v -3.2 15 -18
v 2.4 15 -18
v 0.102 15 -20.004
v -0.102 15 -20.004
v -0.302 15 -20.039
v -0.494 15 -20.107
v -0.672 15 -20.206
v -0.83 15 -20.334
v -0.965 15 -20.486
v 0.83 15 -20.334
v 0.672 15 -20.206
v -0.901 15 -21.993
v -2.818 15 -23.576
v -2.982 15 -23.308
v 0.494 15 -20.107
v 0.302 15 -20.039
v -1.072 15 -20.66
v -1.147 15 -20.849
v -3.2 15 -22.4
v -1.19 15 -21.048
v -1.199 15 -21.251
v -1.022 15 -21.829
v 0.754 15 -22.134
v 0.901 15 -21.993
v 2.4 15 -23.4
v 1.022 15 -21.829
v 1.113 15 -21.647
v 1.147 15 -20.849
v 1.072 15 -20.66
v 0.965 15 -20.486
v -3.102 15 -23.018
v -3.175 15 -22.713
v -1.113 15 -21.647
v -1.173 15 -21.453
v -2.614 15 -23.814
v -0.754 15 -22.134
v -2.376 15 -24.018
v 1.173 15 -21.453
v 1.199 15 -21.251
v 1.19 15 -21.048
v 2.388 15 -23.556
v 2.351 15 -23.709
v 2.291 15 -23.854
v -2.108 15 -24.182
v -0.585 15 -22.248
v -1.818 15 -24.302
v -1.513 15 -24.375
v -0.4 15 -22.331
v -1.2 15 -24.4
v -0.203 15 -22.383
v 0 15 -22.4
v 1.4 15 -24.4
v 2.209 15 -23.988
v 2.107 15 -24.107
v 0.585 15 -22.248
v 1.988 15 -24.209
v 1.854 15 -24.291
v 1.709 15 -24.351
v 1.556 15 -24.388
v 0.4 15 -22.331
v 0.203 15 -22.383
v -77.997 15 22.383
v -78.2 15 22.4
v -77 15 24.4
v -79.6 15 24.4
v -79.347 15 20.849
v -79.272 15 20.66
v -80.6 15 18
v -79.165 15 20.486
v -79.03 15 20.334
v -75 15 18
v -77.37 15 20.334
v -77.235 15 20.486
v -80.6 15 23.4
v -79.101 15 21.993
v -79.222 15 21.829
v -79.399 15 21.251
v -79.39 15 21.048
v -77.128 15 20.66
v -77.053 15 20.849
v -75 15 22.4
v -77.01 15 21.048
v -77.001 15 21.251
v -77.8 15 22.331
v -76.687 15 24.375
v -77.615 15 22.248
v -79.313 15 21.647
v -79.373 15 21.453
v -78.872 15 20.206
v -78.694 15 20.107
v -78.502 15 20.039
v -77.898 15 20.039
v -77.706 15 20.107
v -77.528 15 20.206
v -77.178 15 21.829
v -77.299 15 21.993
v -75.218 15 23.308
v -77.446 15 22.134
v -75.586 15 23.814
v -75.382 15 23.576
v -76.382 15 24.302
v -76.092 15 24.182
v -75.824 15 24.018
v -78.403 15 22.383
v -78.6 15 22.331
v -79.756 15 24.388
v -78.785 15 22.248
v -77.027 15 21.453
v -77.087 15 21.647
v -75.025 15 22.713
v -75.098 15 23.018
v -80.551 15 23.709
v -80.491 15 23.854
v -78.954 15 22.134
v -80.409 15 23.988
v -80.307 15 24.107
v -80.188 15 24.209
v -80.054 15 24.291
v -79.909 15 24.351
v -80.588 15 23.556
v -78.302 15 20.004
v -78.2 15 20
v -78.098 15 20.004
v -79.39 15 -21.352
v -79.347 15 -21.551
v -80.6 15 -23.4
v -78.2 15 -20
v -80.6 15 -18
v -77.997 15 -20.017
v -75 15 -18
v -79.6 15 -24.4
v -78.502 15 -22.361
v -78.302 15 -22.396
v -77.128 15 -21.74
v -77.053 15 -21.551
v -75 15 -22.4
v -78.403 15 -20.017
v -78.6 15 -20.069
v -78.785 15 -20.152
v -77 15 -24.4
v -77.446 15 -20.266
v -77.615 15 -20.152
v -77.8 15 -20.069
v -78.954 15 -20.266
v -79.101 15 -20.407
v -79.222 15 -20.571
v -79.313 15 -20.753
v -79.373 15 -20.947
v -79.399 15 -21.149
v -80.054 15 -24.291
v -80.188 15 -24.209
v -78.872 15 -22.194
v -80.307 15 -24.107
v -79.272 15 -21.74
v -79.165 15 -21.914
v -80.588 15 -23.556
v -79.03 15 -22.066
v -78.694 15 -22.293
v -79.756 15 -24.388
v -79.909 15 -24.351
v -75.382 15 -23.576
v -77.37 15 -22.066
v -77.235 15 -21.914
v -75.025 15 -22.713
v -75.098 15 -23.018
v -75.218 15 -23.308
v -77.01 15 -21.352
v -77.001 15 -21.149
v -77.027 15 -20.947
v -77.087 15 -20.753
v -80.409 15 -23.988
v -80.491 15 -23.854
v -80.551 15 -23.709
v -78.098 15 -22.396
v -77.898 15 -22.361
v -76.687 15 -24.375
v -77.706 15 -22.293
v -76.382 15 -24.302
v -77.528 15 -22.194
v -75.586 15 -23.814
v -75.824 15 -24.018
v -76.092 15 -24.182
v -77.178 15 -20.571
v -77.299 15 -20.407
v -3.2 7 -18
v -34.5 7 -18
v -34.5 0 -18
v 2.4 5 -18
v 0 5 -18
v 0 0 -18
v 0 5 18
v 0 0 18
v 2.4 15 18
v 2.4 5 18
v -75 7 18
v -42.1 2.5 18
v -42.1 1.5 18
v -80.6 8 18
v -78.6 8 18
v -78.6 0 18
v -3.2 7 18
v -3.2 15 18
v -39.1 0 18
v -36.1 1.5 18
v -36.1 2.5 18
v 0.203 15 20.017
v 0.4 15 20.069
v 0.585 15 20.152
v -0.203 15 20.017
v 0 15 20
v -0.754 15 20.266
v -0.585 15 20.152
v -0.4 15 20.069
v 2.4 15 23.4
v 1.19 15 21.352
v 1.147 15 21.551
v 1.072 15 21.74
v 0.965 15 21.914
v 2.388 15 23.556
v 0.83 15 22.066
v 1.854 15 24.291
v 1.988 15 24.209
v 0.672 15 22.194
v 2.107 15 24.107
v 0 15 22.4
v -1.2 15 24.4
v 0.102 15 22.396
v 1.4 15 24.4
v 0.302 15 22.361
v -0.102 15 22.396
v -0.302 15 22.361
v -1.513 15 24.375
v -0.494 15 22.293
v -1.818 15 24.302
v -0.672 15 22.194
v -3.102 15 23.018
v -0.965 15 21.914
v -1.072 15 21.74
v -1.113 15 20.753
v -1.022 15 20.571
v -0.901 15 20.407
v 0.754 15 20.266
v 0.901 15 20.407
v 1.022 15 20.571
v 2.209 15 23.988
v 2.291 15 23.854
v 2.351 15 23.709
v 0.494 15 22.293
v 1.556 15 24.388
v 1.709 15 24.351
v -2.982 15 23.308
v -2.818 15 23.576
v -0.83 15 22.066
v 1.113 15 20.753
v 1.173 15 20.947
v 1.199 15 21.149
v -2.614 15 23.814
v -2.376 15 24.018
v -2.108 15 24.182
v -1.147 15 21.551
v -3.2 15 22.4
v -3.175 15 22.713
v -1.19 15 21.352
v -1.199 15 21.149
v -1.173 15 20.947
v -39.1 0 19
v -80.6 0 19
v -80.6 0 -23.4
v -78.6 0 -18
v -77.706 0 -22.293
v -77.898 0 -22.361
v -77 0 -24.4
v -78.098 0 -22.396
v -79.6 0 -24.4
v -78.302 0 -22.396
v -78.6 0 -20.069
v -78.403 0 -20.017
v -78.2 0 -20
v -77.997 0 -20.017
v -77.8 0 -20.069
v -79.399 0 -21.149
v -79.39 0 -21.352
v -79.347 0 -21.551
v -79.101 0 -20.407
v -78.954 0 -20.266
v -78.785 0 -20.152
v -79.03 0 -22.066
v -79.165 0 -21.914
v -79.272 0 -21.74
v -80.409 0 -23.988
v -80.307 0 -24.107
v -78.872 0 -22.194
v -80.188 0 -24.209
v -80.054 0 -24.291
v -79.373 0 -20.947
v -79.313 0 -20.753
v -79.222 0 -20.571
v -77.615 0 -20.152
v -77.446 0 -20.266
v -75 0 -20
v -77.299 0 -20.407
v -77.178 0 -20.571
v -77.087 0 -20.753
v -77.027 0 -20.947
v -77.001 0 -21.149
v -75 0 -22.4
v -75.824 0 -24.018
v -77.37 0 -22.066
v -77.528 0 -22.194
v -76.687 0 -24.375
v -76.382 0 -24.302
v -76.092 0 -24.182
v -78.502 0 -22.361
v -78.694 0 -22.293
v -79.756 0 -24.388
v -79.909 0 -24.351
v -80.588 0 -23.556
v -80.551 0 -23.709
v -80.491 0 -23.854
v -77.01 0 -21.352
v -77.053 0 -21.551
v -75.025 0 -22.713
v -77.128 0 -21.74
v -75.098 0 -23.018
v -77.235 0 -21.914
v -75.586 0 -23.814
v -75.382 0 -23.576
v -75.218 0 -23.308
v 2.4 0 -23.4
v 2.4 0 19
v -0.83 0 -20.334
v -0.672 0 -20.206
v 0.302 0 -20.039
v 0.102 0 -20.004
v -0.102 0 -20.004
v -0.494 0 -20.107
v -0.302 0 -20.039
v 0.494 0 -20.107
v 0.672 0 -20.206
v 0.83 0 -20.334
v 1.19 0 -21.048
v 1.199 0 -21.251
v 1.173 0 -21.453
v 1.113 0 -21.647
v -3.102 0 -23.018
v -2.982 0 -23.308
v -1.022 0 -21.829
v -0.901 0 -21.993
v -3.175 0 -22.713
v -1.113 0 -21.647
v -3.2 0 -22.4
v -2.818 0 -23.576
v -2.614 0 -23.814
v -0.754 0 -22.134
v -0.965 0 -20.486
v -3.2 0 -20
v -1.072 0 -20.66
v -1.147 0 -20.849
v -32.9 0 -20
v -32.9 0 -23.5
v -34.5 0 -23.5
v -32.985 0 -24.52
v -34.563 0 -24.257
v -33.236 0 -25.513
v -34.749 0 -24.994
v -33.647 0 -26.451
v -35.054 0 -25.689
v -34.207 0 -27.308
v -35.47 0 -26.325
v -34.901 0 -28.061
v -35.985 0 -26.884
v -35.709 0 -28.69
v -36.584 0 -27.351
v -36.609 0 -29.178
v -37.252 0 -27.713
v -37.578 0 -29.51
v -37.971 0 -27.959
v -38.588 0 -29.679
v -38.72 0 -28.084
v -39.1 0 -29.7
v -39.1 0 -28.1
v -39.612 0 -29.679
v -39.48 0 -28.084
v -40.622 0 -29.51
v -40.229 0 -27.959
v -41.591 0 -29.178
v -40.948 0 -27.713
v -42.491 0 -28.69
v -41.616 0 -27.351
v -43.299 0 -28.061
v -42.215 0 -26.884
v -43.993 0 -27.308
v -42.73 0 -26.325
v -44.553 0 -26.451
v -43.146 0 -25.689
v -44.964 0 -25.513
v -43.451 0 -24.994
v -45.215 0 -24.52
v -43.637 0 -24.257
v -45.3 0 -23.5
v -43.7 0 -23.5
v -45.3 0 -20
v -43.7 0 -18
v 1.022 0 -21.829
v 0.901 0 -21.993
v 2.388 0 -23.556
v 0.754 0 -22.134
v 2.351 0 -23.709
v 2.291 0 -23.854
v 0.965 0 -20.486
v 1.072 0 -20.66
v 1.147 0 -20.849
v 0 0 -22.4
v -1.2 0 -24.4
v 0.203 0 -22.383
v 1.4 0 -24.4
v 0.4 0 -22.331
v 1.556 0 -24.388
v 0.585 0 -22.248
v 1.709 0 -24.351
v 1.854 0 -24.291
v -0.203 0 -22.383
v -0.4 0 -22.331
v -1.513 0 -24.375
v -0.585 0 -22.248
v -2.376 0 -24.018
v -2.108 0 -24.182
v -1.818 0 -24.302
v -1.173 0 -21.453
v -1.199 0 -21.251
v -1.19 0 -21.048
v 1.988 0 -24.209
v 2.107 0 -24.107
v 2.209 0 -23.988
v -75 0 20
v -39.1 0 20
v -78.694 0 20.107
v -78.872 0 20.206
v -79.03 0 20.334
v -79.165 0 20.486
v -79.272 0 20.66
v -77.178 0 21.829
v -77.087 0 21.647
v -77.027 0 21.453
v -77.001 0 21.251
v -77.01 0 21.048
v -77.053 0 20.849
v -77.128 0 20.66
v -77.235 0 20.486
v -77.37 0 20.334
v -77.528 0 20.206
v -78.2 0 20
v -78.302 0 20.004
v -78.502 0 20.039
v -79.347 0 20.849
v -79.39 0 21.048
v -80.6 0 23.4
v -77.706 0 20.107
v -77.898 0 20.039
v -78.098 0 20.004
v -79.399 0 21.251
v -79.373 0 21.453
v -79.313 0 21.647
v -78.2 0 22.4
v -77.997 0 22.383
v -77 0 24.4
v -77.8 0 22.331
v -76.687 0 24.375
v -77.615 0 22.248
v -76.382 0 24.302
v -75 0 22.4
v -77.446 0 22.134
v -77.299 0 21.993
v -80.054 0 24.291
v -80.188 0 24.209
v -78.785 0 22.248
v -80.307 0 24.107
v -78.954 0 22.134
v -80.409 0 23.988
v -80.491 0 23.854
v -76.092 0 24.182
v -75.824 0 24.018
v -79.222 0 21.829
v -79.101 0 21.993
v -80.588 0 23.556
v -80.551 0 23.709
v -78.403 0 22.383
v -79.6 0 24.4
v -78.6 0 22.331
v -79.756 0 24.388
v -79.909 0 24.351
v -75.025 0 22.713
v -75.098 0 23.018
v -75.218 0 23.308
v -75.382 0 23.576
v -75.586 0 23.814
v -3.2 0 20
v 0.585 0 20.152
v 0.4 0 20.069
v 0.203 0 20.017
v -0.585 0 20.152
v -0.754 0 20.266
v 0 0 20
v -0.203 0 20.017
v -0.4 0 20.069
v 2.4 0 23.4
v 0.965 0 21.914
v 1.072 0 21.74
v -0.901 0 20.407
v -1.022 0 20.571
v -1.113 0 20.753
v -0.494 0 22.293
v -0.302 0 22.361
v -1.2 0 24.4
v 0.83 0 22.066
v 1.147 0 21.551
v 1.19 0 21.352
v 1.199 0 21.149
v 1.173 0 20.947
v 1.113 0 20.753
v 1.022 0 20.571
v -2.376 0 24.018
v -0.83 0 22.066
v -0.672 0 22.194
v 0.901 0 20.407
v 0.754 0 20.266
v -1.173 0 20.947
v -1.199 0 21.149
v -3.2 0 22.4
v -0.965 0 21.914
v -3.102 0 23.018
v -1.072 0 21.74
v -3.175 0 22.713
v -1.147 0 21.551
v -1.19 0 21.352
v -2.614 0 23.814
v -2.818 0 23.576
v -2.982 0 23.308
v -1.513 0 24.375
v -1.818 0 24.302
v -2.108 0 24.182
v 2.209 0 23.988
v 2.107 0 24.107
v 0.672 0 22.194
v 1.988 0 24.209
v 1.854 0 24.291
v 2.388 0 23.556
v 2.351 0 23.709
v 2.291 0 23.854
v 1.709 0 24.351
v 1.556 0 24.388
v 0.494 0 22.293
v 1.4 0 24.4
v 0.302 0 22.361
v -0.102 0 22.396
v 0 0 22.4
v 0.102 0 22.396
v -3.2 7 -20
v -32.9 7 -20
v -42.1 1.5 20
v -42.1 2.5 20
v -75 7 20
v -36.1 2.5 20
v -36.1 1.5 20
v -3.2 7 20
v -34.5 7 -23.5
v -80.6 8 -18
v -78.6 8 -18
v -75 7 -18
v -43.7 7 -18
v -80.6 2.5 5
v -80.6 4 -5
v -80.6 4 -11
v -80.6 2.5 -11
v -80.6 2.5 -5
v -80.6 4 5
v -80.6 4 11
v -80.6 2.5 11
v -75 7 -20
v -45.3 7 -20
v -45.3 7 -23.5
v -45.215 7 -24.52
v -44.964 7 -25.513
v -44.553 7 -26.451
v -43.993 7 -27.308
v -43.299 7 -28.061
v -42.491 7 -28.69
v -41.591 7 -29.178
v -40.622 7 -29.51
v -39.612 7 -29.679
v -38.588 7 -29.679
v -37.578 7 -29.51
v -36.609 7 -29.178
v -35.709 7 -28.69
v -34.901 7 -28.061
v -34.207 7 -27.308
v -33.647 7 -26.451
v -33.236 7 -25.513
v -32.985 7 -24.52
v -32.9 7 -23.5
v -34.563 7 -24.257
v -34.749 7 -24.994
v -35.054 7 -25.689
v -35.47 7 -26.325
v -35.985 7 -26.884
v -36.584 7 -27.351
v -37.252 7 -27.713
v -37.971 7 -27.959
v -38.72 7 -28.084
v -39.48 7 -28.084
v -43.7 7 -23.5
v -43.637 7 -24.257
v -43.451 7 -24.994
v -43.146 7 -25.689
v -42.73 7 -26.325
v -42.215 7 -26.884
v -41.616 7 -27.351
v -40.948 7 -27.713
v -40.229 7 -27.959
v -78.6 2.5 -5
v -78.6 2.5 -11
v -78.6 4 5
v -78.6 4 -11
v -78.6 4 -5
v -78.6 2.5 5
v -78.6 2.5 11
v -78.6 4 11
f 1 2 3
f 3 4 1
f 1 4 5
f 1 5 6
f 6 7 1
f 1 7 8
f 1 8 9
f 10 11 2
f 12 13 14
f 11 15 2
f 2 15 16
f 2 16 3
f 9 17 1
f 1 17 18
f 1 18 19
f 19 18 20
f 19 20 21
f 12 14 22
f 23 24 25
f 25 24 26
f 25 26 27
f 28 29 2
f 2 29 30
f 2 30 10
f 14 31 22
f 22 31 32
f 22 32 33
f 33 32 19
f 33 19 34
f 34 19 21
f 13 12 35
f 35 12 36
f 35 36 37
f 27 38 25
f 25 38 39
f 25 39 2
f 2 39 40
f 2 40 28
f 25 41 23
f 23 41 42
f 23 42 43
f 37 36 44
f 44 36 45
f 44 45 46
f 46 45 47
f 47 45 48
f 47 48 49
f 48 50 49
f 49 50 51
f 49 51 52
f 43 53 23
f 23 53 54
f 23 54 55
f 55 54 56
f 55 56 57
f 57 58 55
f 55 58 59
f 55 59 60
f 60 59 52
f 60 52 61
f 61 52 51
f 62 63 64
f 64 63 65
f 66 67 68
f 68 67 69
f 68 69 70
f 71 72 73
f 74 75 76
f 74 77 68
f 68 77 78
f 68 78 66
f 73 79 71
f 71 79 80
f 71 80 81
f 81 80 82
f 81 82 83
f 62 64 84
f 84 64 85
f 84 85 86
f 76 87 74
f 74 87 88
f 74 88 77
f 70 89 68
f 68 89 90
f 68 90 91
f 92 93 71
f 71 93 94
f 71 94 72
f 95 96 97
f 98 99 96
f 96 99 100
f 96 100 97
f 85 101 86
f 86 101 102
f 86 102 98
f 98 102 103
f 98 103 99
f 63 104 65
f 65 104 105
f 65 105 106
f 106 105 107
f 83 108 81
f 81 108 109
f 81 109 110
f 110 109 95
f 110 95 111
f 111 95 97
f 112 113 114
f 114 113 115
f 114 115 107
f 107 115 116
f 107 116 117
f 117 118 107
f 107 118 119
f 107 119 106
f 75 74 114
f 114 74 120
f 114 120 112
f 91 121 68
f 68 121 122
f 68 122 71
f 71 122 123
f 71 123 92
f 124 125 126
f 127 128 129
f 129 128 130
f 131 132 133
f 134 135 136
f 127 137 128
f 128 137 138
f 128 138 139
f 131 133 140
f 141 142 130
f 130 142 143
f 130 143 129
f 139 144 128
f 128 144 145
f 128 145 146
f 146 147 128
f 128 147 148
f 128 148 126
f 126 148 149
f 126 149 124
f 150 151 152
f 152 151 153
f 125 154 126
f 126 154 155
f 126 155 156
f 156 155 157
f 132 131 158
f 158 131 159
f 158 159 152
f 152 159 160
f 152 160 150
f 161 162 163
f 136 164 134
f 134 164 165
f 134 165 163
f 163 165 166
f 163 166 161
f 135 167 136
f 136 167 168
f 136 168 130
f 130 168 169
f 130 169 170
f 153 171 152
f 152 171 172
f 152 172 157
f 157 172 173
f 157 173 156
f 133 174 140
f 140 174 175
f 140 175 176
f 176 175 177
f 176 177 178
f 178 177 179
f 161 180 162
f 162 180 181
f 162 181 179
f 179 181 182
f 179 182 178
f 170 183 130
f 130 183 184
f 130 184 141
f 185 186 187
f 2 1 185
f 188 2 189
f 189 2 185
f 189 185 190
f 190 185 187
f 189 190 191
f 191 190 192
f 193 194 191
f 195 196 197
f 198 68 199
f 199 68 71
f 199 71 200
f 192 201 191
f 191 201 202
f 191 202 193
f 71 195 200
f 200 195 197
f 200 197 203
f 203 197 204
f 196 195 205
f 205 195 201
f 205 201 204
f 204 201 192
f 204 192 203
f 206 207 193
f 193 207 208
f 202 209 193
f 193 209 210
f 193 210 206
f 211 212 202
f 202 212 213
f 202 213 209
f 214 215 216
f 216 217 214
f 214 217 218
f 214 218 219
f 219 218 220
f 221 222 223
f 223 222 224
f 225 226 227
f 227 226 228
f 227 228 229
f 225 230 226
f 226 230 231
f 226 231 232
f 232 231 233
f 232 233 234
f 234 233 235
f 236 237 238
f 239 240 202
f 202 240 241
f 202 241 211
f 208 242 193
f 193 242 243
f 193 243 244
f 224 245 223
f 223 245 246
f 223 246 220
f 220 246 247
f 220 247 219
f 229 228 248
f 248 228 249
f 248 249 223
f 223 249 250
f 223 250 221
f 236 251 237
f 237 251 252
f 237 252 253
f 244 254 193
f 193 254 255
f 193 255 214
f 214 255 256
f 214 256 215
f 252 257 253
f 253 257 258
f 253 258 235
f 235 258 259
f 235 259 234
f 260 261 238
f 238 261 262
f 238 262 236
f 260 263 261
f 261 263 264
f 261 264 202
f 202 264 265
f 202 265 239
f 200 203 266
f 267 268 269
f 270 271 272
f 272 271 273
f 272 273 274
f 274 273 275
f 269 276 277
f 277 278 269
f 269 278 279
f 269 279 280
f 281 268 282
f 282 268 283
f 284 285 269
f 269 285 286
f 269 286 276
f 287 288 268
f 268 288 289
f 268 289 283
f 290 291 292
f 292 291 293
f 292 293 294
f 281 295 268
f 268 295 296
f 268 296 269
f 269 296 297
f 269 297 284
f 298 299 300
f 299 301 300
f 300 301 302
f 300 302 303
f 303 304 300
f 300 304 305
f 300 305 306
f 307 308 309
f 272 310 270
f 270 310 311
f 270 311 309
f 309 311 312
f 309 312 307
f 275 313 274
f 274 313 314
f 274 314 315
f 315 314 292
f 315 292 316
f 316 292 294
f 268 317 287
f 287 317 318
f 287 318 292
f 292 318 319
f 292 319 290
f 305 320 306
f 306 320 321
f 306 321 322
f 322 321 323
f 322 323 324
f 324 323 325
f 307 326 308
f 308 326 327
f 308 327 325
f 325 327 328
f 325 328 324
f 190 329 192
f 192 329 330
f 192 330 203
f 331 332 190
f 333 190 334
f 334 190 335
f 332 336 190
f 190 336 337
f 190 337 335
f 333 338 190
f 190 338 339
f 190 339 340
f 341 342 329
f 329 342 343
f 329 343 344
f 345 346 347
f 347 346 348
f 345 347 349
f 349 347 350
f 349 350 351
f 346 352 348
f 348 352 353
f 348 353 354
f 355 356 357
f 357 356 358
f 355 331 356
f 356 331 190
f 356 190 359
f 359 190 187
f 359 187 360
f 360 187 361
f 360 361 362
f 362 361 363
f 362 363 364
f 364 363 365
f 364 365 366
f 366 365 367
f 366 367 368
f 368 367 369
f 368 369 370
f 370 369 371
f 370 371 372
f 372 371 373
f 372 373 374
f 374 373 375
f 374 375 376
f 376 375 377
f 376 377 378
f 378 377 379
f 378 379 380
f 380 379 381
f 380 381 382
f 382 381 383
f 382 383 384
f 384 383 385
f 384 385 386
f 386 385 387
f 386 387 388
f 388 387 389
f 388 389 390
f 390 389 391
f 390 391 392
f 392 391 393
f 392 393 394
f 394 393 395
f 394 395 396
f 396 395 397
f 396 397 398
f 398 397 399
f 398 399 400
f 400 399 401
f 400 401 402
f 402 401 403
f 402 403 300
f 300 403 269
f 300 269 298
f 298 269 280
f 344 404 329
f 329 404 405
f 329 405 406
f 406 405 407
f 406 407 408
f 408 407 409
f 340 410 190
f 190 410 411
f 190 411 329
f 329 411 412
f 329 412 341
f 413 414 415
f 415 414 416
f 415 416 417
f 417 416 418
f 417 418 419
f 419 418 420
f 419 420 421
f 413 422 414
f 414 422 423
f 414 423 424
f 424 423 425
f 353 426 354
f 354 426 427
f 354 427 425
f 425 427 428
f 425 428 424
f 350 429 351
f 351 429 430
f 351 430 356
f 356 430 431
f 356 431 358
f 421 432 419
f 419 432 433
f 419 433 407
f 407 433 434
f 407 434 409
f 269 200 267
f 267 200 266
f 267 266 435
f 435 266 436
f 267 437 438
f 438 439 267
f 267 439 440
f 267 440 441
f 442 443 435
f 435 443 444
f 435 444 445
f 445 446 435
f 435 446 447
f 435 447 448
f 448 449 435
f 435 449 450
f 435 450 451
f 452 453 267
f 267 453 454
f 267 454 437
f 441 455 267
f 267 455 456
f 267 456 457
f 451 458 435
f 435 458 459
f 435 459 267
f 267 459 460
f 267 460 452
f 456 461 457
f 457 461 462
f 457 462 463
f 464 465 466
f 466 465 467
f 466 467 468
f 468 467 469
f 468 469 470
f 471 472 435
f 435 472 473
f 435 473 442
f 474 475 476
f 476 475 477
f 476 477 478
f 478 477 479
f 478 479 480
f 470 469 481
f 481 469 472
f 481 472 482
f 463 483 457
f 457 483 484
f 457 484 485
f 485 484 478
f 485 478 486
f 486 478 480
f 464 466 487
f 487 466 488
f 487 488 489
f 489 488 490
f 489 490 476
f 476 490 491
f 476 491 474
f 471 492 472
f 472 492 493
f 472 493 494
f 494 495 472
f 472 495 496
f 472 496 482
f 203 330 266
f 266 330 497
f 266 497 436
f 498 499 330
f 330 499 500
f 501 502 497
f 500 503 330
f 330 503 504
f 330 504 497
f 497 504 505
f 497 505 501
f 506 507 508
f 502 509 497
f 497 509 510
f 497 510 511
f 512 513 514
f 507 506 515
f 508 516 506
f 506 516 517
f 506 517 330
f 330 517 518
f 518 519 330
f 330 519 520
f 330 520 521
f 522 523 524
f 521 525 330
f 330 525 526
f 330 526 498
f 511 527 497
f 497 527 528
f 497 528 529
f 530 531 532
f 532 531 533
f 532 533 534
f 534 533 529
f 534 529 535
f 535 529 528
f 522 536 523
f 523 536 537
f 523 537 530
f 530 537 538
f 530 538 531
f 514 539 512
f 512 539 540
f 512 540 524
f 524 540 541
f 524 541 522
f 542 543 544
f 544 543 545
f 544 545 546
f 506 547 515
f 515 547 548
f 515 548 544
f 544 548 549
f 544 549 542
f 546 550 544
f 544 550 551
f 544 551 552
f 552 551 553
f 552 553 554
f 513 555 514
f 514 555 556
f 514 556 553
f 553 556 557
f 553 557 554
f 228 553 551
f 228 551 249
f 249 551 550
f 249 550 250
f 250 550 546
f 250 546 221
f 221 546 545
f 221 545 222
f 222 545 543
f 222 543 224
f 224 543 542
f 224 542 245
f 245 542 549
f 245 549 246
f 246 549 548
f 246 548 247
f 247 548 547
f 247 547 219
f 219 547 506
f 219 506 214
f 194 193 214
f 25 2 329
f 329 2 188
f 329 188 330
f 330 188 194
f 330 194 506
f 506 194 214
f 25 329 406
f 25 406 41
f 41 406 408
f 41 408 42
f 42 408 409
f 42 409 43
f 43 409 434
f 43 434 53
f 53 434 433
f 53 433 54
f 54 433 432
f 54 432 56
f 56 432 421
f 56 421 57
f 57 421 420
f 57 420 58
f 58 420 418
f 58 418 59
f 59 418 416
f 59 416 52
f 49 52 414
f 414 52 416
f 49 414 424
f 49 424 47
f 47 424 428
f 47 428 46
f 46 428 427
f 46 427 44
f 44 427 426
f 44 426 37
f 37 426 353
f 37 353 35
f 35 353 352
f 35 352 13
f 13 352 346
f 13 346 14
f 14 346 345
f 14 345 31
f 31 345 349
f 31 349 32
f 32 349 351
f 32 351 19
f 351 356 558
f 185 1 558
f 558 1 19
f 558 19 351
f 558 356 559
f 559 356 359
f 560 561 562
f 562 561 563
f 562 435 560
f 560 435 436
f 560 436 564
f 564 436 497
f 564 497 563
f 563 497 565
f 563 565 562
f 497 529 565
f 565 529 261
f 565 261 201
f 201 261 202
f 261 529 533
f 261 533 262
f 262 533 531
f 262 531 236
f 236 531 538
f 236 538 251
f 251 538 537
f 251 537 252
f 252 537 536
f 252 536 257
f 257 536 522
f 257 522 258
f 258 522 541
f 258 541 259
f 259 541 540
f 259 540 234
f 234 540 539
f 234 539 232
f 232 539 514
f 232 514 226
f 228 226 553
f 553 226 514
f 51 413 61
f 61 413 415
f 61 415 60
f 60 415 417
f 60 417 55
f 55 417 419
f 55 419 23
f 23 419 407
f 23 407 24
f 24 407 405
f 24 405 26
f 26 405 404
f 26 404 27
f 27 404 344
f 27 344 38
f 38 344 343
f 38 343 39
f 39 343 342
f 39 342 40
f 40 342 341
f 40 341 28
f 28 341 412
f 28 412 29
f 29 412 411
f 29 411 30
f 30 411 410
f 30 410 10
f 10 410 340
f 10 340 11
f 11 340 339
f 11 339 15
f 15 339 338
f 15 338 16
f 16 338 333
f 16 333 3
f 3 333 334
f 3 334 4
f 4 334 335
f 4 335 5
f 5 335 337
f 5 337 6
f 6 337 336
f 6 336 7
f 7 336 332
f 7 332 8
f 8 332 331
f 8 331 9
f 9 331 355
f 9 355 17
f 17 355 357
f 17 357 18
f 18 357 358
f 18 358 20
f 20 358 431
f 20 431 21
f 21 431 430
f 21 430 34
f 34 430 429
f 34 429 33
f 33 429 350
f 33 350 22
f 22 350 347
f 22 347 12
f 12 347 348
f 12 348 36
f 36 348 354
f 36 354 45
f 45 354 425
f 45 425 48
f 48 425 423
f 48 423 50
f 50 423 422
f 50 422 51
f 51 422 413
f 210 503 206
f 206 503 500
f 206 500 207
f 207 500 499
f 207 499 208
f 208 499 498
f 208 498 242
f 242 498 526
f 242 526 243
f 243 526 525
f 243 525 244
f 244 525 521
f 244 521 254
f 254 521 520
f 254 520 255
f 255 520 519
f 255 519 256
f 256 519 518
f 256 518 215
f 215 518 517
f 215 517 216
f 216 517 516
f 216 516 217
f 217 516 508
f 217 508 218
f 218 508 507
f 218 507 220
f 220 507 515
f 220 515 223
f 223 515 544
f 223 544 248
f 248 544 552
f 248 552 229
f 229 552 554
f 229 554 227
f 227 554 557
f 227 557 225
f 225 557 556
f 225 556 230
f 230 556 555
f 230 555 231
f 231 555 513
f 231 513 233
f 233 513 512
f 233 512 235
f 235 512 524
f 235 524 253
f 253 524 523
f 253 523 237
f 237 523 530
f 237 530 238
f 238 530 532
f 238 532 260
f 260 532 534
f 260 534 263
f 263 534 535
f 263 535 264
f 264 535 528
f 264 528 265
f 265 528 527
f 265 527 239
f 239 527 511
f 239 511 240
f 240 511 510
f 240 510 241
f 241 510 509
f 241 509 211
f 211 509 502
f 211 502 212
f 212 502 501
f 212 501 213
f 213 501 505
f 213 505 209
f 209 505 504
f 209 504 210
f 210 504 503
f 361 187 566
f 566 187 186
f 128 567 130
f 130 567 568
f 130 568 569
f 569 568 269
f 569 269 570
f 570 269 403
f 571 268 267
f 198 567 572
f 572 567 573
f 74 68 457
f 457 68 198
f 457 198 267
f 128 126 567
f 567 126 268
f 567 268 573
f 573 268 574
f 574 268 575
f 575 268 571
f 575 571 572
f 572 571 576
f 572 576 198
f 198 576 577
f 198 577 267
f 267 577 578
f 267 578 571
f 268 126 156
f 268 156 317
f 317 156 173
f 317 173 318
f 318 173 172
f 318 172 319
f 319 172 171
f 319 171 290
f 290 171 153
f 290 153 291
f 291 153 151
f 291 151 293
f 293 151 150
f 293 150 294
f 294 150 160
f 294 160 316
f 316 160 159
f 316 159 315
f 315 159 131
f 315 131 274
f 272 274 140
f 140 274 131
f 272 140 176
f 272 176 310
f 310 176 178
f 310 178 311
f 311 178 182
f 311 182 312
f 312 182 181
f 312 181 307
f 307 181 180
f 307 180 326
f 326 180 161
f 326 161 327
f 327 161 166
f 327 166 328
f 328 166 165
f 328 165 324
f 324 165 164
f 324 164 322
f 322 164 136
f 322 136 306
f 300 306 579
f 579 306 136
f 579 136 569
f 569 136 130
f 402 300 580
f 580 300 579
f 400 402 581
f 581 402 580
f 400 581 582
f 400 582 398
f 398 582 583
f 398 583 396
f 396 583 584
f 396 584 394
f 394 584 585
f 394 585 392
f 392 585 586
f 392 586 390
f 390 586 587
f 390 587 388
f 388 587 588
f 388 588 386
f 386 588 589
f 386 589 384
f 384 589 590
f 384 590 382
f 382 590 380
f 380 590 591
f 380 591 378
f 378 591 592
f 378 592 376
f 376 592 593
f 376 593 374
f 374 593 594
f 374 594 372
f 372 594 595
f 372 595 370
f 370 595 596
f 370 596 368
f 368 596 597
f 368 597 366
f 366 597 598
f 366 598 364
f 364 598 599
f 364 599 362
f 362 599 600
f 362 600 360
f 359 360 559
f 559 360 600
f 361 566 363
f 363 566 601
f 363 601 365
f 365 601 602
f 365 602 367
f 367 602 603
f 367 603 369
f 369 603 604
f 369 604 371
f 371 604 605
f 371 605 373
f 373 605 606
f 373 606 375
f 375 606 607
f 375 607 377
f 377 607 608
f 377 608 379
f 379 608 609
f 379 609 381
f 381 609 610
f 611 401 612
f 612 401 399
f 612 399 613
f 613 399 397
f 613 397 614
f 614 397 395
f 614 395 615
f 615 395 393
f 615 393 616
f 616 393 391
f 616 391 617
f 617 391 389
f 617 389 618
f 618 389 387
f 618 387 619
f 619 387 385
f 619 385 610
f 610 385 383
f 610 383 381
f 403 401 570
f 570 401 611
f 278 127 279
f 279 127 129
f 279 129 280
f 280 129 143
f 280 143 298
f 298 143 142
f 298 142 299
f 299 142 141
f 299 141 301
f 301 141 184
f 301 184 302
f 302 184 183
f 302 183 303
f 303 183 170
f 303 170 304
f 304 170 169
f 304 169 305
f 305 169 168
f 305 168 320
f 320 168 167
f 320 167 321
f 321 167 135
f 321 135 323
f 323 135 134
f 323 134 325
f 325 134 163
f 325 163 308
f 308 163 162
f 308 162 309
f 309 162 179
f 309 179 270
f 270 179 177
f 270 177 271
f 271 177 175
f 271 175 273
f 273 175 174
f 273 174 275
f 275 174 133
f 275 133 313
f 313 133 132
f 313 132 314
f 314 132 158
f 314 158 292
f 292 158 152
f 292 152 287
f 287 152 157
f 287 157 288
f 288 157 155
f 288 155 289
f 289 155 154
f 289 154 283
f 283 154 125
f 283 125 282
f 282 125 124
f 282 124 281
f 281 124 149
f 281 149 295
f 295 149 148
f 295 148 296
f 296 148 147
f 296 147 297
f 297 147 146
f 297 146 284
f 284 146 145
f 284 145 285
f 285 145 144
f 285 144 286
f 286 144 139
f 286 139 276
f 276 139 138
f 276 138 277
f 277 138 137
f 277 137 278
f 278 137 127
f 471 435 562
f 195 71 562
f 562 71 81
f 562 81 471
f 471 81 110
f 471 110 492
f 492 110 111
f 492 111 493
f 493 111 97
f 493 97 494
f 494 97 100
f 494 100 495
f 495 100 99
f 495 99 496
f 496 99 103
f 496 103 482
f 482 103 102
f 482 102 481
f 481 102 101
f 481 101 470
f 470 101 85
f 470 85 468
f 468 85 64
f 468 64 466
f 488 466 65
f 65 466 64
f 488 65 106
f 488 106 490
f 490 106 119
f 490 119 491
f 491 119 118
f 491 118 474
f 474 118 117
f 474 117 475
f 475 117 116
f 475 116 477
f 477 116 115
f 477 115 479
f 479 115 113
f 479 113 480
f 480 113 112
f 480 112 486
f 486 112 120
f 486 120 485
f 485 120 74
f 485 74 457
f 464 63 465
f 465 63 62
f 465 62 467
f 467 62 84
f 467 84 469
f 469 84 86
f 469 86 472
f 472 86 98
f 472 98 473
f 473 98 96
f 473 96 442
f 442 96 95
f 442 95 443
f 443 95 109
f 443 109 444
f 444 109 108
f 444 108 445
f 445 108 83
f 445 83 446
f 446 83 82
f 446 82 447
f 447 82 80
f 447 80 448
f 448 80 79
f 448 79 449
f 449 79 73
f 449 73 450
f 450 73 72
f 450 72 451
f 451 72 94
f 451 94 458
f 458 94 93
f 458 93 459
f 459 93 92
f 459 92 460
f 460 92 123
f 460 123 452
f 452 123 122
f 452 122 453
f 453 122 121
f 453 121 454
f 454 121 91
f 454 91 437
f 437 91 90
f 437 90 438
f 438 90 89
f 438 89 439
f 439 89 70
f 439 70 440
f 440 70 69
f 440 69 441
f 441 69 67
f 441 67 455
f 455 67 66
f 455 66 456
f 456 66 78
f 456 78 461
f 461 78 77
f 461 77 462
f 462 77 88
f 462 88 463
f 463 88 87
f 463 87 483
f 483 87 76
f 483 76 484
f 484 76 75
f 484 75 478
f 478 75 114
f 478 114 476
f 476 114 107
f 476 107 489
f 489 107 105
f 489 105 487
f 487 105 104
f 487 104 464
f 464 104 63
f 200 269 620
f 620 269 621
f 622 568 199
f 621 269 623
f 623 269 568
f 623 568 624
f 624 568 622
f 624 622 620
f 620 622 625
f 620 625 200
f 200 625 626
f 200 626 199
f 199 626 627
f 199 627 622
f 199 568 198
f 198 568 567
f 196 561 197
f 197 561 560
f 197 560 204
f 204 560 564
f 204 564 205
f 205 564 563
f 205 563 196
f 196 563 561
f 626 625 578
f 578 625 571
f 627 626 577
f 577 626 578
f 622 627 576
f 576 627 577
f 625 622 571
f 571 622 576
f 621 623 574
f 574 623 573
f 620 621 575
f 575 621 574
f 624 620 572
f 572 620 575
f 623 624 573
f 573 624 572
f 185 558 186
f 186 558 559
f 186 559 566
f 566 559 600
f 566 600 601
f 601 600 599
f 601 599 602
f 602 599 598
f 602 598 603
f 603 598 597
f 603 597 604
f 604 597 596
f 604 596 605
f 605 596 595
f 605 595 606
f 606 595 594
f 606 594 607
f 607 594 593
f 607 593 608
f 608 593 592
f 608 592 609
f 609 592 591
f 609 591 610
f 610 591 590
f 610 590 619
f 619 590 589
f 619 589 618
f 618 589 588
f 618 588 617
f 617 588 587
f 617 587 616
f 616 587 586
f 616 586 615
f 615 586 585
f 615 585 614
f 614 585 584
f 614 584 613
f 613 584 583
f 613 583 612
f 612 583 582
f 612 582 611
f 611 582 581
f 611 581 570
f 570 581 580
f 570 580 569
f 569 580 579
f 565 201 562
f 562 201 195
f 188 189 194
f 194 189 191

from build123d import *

# Parameters (mm, degrees)
SKETCH1_R               = 1.2
BOSS_EXTRUDE1_DEPTH     = 15
SKETCH3_W               = 15
SKETCH3_H               = 36
BOSS_EXTRUDE3_DEPTH     = 1.5
BOSS_EXTRUDE4_DEPTH     = 19.5
SKETCH6_R               = 1.2
BOSS_EXTRUDE5_DEPTH     = 15
SKETCH7_W               = 2
SKETCH7_H               = 36
BOSS_EXTRUDE6_DEPTH     = 8
SKETCH8_W               = 6
SKETCH8_H               = 1
CUT_EXTRUDE1_DEPTH      = 5
SKETCH9_W               = 6
SKETCH9_H               = 1.5
CUT_EXTRUDE2_DEPTH      = 5
CUT_EXTRUDE3_DEPTH      = 94.234757467
CUT_EXTRUDE3_DEPTH_BACK = 94.234757467
SKETCH10_W              = 71.8
SKETCH10_H              = 8
SKETCH11_W              = 36
SKETCH11_H              = 10
CUT_EXTRUDE4_DEPTH      = 10
SKETCH12_W              = 15
SKETCH12_H              = 36
CUT_EXTRUDE5_DEPTH      = 10


with BuildPart() as part:
    # Sketch1 → Boss-Extrude1 (new body)
    with BuildSketch(Plane(origin=(0, 0, 0), x_dir=(1, 0, 0), z_dir=(0, 1, 0))):
        with BuildLine():
            Line((2.4, -23.4), (2.4, 23.4))
            ThreePointArc((2.4, 23.4), (2.107106781, 24.107106781), (1.4, 24.4))
            Line((1.4, 24.4), (-1.2, 24.4))
            ThreePointArc((-1.2, 24.4), (-2.614213562, 23.814213562), (-3.2, 22.4))
            Line((-3.2, 22.4), (-3.2, 20))
            Line((-3.2, 20), (-15, 20))
            Line((-15, 20), (-15, 18))
            Line((-15, 18), (0, 18))
            Line((0, 18), (0, -18))
            Line((0, -18), (-15, -18))
            Line((-15, -18), (-15, -20))
            Line((-15, -20), (-3.2, -20))
            Line((-3.2, -20), (-3.2, -22.4))
            ThreePointArc((-3.2, -22.4), (-2.614213562, -23.814213562), (-1.2, -24.4))
            Line((-1.2, -24.4), (1.4, -24.4))
            ThreePointArc((1.4, -24.4), (2.107106781, -24.107106781), (2.4, -23.4))
        make_face()
        with Locations(Location((0, -21.2, 0), (0, 0, 270))):
            Circle(SKETCH1_R, mode=Mode.SUBTRACT)
        with Locations(Location((0, 21.2, 0), (0, 0, 90))):
            Circle(SKETCH1_R, mode=Mode.SUBTRACT)
    extrude(amount=BOSS_EXTRUDE1_DEPTH)

    # Sketch3 → Boss-Extrude3 (add)
    with BuildSketch(Plane(origin=(0, 0, 0), x_dir=(1, 0, 0), z_dir=(0, 1, 0))):
        with Locations((-7.5, 0)):
            Rectangle(SKETCH3_W, SKETCH3_H)
    extrude(amount=BOSS_EXTRUDE3_DEPTH)

    # Sketch4 → Boss-Extrude4 (add)
    with BuildSketch(Plane.ZY.offset(15)):
        Polygon((-18, 1.5), (-18, 0), (-20, 0), (-20, 15), (-18, 15), align=None)
    extrude(amount=BOSS_EXTRUDE4_DEPTH)

    # Sketch6 → Boss-Extrude5 (add)
    # profile 1 of 2: a face of its own
    with BuildSketch(Plane(origin=(0, 15, 0), x_dir=(1, 0, 0), z_dir=(0, 1, 0))):
        with BuildLine():
            Line((-45.3, 20), (-45.3, 23.5))
            ThreePointArc((-45.3, 23.5), (-39.1, 29.7), (-32.9, 23.5))
            Line((-32.9, 23.5), (-32.9, 20))
            Line((-32.9, 20), (-34.5, 20))
            Line((-34.5, 20), (-34.5, 23.5))
            ThreePointArc((-34.5, 23.5), (-39.1, 28.1), (-43.7, 23.5))
            Line((-43.7, 23.5), (-43.7, 20))
            Line((-43.7, 20), (-43.7, 18))
            Line((-43.7, 18), (-80.6, 18))
            Line((-80.6, 18), (-80.6, 23.4))
            ThreePointArc((-80.6, 23.4), (-80.307106781, 24.107106781), (-79.6, 24.4))
            Line((-79.6, 24.4), (-77, 24.4))
            ThreePointArc((-77, 24.4), (-75.585786438, 23.814213562), (-75, 22.4))
            Line((-75, 22.4), (-75, 20))
            Line((-75, 20), (-45.3, 20))
        make_face()
        with Locations(Location((-78.2, 21.2, 0), (0, 0, 270))):
            Circle(SKETCH6_R, mode=Mode.SUBTRACT)
    # profile 2 of 2: a face of its own
    with BuildSketch(Plane(origin=(0, 15, 0), x_dir=(1, 0, 0), z_dir=(0, 1, 0))):
        with BuildLine():
            Line((-80.6, -18), (-15, -18))
            Line((-15, -18), (-15, -20))
            Line((-15, -20), (-75, -20))
            Line((-75, -20), (-75, -22.4))
            ThreePointArc((-75, -22.4), (-75.585786438, -23.814213562), (-77, -24.4))
            Line((-77, -24.4), (-79.6, -24.4))
            ThreePointArc((-79.6, -24.4), (-80.307106781, -24.107106781), (-80.6, -23.4))
            Line((-80.6, -23.4), (-80.6, -18))
        make_face()
        with Locations(Location((-78.2, -21.2, 0), (0, 0, 90))):
            Circle(SKETCH6_R, mode=Mode.SUBTRACT)
    extrude(amount=-BOSS_EXTRUDE5_DEPTH)

    # Sketch7 → Boss-Extrude6 (add)
    with BuildSketch(Plane.XZ):
        with Locations((-79.6, 0)):
            Rectangle(SKETCH7_W, SKETCH7_H)
    extrude(amount=-BOSS_EXTRUDE6_DEPTH)

    # Sketch8 → Cut-Extrude1 (cut)
    with BuildSketch(Plane(origin=(0, 0, 18), x_dir=(-1, 0, 0), z_dir=(0, 0, -1))):
        with Locations((39.1, 2)):
            Rectangle(SKETCH8_W, SKETCH8_H)
    extrude(amount=-CUT_EXTRUDE1_DEPTH, mode=Mode.SUBTRACT)

    # Sketch9 → Cut-Extrude2 (cut)
    with BuildSketch(Plane(origin=(-78.6, 0, 0), x_dir=(0, 0, -1), z_dir=(1, 0, 0))):
        with Locations((8, 3.25)):
            Rectangle(SKETCH9_W, SKETCH9_H)
        with Locations((-8, 3.25)):
            Rectangle(SKETCH9_W, SKETCH9_H)
    extrude(amount=-CUT_EXTRUDE2_DEPTH, mode=Mode.SUBTRACT)

    # Sketch10 → Cut-Extrude3 (cut, two sides: drawn at the far end of the back side and taken through both)
    with BuildSketch(Plane(origin=(0, 0, -20), x_dir=(-1, 0, 0), z_dir=(0, 0, -1)).offset(-CUT_EXTRUDE3_DEPTH_BACK)):
        with Locations((39.1, 11)):
            Rectangle(SKETCH10_W, SKETCH10_H)
    extrude(amount=CUT_EXTRUDE3_DEPTH + CUT_EXTRUDE3_DEPTH_BACK, mode=Mode.SUBTRACT)

    # Sketch11 → Cut-Extrude4 (cut)
    with BuildSketch(Plane(origin=(2.4, 0, 0), x_dir=(0, 0, -1), z_dir=(1, 0, 0))):
        with Locations((0, 10)):
            Rectangle(SKETCH11_W, SKETCH11_H)
    extrude(amount=-CUT_EXTRUDE4_DEPTH, mode=Mode.SUBTRACT)

    # Sketch12 → Cut-Extrude5 (cut)
    with BuildSketch(Plane.XZ):
        with Locations((-7.5, 0)):
            Rectangle(SKETCH12_W, SKETCH12_H)
    extrude(amount=-CUT_EXTRUDE5_DEPTH, mode=Mode.SUBTRACT)


solid = part.part
